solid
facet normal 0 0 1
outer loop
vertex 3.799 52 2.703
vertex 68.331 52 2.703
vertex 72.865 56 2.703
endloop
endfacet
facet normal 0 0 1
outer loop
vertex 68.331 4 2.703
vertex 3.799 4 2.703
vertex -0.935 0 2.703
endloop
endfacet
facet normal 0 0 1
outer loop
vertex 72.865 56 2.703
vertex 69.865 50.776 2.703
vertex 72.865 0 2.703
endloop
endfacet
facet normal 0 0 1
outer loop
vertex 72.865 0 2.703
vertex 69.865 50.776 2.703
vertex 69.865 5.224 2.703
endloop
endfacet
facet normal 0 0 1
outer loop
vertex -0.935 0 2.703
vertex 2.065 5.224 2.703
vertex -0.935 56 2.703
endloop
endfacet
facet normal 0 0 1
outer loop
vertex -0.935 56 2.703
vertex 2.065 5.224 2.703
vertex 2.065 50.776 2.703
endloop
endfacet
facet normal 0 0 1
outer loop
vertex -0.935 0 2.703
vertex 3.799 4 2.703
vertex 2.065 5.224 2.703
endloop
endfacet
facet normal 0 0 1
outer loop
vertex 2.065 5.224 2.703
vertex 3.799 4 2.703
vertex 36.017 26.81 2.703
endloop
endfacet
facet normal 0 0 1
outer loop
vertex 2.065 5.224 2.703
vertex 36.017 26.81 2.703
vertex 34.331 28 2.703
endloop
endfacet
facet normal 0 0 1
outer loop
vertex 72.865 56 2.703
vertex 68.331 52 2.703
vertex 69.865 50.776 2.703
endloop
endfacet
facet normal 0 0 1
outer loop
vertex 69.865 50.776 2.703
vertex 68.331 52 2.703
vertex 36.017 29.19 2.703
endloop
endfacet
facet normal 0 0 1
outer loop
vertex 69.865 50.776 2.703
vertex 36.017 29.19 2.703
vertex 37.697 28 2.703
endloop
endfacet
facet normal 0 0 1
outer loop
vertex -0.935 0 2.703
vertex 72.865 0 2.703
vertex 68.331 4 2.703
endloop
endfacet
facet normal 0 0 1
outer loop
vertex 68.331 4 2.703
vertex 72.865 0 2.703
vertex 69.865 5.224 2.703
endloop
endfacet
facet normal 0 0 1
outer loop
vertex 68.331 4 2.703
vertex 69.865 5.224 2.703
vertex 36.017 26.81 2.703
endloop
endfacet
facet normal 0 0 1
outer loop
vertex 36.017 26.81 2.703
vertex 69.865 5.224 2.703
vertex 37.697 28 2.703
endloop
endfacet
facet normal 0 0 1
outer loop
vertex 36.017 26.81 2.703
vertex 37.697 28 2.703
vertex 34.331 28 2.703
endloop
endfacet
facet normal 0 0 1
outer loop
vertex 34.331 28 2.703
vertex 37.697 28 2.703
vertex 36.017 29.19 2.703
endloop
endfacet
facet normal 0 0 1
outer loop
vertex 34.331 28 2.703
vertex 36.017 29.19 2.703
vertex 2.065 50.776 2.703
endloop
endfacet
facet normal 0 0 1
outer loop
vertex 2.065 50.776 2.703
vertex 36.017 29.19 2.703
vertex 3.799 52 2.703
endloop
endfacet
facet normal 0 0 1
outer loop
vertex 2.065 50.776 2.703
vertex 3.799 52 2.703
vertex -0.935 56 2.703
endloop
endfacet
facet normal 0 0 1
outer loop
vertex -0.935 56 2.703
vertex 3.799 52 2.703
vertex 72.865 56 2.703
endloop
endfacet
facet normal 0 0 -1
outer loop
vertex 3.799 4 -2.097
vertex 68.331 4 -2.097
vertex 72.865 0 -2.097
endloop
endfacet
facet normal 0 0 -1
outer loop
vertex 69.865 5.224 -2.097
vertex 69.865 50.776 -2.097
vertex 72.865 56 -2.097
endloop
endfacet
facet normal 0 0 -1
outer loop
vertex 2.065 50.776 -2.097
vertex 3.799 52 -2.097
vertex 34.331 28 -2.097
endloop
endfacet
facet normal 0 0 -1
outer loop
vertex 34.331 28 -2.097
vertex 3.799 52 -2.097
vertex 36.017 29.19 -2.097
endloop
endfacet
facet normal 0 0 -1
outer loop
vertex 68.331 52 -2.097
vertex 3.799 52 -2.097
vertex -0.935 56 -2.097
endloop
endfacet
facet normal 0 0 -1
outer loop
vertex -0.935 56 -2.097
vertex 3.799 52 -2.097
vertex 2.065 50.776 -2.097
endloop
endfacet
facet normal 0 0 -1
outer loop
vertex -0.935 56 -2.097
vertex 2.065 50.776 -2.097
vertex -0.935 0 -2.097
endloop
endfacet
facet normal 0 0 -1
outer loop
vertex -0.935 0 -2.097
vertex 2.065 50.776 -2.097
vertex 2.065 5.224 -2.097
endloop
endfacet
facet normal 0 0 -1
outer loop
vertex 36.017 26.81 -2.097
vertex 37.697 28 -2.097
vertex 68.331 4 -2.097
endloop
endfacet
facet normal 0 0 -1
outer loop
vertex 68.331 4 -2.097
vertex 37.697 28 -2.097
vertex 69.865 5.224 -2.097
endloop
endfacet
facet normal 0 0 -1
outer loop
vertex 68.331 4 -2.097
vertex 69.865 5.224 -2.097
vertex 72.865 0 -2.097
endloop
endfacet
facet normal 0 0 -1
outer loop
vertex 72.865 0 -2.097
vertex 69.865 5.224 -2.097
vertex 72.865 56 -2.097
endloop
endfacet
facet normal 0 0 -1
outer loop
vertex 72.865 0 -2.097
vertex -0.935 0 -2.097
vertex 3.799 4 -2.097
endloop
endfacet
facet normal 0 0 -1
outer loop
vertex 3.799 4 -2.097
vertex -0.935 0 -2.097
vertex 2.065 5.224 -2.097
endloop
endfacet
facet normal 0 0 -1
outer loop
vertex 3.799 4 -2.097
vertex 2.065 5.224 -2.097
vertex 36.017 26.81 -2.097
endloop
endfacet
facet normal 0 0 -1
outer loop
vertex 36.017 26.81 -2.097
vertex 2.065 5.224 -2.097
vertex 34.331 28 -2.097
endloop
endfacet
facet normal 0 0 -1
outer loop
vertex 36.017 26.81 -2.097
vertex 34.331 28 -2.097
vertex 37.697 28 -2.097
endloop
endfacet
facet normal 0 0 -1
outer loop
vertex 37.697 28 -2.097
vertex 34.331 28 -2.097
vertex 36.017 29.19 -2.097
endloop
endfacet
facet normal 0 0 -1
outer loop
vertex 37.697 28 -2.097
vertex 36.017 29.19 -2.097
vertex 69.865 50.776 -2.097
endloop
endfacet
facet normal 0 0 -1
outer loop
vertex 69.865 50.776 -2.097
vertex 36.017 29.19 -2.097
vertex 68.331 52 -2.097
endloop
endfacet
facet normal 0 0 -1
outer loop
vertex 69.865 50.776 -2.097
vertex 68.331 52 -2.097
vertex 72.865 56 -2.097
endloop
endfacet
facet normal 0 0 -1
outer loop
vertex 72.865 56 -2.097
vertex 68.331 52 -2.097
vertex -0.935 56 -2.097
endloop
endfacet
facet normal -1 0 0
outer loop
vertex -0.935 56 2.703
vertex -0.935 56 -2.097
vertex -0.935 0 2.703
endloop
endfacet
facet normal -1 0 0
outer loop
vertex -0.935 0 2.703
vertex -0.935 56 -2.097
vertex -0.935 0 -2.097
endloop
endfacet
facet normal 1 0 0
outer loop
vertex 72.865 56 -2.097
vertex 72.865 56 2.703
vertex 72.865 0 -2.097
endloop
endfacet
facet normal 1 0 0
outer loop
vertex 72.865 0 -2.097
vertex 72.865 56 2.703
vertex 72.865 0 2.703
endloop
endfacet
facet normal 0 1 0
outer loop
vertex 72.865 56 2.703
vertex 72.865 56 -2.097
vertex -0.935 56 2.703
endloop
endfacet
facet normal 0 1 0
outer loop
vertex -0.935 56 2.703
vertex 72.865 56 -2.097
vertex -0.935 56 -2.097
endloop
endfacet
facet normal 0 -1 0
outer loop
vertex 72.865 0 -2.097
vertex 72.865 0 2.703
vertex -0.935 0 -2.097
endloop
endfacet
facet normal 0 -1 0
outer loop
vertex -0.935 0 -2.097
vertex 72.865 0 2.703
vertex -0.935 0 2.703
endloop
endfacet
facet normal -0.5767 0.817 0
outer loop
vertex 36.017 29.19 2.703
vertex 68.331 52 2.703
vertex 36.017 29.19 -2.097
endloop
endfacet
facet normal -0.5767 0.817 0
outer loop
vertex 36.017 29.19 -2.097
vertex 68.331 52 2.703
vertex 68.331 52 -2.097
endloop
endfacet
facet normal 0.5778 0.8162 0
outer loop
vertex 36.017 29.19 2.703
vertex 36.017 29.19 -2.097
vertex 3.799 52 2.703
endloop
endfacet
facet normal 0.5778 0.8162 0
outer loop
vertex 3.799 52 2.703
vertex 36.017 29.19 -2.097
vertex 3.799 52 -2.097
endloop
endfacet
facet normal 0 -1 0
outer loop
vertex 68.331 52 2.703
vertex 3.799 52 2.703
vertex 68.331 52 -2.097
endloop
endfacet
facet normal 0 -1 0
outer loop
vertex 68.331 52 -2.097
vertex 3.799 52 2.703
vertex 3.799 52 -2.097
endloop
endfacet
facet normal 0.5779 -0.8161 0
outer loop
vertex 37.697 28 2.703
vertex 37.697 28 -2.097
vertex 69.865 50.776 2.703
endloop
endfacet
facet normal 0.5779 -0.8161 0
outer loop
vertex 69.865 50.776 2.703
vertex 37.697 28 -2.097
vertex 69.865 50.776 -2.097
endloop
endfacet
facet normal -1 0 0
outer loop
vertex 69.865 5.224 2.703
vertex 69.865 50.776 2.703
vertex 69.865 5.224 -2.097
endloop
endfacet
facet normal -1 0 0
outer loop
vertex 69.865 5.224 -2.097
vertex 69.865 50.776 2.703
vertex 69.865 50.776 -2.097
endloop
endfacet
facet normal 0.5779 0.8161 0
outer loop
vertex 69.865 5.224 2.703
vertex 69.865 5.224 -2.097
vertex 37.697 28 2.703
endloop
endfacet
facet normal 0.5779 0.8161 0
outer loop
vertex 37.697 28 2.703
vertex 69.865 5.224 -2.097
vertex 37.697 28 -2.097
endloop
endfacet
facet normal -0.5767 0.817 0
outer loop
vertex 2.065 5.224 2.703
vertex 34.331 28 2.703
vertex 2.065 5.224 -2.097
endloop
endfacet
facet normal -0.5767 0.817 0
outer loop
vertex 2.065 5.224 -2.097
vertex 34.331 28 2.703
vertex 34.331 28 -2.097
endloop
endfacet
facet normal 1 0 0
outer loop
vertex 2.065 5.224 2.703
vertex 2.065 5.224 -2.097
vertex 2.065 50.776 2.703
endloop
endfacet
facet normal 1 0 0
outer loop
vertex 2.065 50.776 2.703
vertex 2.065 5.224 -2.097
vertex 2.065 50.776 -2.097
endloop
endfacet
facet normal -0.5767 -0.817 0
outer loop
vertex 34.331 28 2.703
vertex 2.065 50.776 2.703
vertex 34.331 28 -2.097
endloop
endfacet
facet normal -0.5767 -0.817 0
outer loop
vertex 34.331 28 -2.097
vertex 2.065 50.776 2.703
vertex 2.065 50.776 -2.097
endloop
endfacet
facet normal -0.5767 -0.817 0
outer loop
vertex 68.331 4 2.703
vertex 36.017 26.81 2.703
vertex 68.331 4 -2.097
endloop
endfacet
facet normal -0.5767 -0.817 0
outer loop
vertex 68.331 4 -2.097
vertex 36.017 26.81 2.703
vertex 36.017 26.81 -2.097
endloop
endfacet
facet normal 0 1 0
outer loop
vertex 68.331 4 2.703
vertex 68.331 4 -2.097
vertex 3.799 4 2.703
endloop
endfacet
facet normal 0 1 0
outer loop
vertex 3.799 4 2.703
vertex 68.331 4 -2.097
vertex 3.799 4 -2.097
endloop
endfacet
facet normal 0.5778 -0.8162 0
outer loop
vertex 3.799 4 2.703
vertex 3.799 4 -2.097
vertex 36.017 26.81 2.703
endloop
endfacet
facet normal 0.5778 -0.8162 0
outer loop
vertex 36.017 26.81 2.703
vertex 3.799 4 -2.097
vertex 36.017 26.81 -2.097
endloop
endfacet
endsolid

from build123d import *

# Parameters (mm, degrees)
SKETCH1_W           = 73.8
SKETCH1_H           = 4.8
BOSS_EXTRUDE1_DEPTH = 56
CUT_EXTRUDE1_DEPTH  = 56


with BuildPart() as part:
    # Sketch1 → Boss-Extrude1 (new body)
    with BuildSketch(Plane(origin=(0, 0, 0), x_dir=(1, 0, 0), z_dir=(0, 1, 0))):
        with Locations((35.965315315, -0.302702703)):
            Rectangle(SKETCH1_W, SKETCH1_H)
    extrude(amount=BOSS_EXTRUDE1_DEPTH)

    # Sketch2 → Cut-Extrude1 (cut)
    with BuildSketch(Plane.XY.offset(2.702702703)):
        Polygon((68.331260978, 52), (3.799369653, 52), (36.016550131, 29.189615872), align=None)
        Polygon((34.331260978, 28), (2.065315315, 50.775961644), (2.065315315, 5.224038356), align=None)
        Polygon((36.016550131, 26.810384128), (3.799369653, 4), (68.331260978, 4), align=None)
        Polygon((69.865315315, 5.224038356), (69.865315315, 50.775961644), (37.696752842, 28), align=None)
    extrude(amount=-CUT_EXTRUDE1_DEPTH, mode=Mode.SUBTRACT)


solid = part.part
